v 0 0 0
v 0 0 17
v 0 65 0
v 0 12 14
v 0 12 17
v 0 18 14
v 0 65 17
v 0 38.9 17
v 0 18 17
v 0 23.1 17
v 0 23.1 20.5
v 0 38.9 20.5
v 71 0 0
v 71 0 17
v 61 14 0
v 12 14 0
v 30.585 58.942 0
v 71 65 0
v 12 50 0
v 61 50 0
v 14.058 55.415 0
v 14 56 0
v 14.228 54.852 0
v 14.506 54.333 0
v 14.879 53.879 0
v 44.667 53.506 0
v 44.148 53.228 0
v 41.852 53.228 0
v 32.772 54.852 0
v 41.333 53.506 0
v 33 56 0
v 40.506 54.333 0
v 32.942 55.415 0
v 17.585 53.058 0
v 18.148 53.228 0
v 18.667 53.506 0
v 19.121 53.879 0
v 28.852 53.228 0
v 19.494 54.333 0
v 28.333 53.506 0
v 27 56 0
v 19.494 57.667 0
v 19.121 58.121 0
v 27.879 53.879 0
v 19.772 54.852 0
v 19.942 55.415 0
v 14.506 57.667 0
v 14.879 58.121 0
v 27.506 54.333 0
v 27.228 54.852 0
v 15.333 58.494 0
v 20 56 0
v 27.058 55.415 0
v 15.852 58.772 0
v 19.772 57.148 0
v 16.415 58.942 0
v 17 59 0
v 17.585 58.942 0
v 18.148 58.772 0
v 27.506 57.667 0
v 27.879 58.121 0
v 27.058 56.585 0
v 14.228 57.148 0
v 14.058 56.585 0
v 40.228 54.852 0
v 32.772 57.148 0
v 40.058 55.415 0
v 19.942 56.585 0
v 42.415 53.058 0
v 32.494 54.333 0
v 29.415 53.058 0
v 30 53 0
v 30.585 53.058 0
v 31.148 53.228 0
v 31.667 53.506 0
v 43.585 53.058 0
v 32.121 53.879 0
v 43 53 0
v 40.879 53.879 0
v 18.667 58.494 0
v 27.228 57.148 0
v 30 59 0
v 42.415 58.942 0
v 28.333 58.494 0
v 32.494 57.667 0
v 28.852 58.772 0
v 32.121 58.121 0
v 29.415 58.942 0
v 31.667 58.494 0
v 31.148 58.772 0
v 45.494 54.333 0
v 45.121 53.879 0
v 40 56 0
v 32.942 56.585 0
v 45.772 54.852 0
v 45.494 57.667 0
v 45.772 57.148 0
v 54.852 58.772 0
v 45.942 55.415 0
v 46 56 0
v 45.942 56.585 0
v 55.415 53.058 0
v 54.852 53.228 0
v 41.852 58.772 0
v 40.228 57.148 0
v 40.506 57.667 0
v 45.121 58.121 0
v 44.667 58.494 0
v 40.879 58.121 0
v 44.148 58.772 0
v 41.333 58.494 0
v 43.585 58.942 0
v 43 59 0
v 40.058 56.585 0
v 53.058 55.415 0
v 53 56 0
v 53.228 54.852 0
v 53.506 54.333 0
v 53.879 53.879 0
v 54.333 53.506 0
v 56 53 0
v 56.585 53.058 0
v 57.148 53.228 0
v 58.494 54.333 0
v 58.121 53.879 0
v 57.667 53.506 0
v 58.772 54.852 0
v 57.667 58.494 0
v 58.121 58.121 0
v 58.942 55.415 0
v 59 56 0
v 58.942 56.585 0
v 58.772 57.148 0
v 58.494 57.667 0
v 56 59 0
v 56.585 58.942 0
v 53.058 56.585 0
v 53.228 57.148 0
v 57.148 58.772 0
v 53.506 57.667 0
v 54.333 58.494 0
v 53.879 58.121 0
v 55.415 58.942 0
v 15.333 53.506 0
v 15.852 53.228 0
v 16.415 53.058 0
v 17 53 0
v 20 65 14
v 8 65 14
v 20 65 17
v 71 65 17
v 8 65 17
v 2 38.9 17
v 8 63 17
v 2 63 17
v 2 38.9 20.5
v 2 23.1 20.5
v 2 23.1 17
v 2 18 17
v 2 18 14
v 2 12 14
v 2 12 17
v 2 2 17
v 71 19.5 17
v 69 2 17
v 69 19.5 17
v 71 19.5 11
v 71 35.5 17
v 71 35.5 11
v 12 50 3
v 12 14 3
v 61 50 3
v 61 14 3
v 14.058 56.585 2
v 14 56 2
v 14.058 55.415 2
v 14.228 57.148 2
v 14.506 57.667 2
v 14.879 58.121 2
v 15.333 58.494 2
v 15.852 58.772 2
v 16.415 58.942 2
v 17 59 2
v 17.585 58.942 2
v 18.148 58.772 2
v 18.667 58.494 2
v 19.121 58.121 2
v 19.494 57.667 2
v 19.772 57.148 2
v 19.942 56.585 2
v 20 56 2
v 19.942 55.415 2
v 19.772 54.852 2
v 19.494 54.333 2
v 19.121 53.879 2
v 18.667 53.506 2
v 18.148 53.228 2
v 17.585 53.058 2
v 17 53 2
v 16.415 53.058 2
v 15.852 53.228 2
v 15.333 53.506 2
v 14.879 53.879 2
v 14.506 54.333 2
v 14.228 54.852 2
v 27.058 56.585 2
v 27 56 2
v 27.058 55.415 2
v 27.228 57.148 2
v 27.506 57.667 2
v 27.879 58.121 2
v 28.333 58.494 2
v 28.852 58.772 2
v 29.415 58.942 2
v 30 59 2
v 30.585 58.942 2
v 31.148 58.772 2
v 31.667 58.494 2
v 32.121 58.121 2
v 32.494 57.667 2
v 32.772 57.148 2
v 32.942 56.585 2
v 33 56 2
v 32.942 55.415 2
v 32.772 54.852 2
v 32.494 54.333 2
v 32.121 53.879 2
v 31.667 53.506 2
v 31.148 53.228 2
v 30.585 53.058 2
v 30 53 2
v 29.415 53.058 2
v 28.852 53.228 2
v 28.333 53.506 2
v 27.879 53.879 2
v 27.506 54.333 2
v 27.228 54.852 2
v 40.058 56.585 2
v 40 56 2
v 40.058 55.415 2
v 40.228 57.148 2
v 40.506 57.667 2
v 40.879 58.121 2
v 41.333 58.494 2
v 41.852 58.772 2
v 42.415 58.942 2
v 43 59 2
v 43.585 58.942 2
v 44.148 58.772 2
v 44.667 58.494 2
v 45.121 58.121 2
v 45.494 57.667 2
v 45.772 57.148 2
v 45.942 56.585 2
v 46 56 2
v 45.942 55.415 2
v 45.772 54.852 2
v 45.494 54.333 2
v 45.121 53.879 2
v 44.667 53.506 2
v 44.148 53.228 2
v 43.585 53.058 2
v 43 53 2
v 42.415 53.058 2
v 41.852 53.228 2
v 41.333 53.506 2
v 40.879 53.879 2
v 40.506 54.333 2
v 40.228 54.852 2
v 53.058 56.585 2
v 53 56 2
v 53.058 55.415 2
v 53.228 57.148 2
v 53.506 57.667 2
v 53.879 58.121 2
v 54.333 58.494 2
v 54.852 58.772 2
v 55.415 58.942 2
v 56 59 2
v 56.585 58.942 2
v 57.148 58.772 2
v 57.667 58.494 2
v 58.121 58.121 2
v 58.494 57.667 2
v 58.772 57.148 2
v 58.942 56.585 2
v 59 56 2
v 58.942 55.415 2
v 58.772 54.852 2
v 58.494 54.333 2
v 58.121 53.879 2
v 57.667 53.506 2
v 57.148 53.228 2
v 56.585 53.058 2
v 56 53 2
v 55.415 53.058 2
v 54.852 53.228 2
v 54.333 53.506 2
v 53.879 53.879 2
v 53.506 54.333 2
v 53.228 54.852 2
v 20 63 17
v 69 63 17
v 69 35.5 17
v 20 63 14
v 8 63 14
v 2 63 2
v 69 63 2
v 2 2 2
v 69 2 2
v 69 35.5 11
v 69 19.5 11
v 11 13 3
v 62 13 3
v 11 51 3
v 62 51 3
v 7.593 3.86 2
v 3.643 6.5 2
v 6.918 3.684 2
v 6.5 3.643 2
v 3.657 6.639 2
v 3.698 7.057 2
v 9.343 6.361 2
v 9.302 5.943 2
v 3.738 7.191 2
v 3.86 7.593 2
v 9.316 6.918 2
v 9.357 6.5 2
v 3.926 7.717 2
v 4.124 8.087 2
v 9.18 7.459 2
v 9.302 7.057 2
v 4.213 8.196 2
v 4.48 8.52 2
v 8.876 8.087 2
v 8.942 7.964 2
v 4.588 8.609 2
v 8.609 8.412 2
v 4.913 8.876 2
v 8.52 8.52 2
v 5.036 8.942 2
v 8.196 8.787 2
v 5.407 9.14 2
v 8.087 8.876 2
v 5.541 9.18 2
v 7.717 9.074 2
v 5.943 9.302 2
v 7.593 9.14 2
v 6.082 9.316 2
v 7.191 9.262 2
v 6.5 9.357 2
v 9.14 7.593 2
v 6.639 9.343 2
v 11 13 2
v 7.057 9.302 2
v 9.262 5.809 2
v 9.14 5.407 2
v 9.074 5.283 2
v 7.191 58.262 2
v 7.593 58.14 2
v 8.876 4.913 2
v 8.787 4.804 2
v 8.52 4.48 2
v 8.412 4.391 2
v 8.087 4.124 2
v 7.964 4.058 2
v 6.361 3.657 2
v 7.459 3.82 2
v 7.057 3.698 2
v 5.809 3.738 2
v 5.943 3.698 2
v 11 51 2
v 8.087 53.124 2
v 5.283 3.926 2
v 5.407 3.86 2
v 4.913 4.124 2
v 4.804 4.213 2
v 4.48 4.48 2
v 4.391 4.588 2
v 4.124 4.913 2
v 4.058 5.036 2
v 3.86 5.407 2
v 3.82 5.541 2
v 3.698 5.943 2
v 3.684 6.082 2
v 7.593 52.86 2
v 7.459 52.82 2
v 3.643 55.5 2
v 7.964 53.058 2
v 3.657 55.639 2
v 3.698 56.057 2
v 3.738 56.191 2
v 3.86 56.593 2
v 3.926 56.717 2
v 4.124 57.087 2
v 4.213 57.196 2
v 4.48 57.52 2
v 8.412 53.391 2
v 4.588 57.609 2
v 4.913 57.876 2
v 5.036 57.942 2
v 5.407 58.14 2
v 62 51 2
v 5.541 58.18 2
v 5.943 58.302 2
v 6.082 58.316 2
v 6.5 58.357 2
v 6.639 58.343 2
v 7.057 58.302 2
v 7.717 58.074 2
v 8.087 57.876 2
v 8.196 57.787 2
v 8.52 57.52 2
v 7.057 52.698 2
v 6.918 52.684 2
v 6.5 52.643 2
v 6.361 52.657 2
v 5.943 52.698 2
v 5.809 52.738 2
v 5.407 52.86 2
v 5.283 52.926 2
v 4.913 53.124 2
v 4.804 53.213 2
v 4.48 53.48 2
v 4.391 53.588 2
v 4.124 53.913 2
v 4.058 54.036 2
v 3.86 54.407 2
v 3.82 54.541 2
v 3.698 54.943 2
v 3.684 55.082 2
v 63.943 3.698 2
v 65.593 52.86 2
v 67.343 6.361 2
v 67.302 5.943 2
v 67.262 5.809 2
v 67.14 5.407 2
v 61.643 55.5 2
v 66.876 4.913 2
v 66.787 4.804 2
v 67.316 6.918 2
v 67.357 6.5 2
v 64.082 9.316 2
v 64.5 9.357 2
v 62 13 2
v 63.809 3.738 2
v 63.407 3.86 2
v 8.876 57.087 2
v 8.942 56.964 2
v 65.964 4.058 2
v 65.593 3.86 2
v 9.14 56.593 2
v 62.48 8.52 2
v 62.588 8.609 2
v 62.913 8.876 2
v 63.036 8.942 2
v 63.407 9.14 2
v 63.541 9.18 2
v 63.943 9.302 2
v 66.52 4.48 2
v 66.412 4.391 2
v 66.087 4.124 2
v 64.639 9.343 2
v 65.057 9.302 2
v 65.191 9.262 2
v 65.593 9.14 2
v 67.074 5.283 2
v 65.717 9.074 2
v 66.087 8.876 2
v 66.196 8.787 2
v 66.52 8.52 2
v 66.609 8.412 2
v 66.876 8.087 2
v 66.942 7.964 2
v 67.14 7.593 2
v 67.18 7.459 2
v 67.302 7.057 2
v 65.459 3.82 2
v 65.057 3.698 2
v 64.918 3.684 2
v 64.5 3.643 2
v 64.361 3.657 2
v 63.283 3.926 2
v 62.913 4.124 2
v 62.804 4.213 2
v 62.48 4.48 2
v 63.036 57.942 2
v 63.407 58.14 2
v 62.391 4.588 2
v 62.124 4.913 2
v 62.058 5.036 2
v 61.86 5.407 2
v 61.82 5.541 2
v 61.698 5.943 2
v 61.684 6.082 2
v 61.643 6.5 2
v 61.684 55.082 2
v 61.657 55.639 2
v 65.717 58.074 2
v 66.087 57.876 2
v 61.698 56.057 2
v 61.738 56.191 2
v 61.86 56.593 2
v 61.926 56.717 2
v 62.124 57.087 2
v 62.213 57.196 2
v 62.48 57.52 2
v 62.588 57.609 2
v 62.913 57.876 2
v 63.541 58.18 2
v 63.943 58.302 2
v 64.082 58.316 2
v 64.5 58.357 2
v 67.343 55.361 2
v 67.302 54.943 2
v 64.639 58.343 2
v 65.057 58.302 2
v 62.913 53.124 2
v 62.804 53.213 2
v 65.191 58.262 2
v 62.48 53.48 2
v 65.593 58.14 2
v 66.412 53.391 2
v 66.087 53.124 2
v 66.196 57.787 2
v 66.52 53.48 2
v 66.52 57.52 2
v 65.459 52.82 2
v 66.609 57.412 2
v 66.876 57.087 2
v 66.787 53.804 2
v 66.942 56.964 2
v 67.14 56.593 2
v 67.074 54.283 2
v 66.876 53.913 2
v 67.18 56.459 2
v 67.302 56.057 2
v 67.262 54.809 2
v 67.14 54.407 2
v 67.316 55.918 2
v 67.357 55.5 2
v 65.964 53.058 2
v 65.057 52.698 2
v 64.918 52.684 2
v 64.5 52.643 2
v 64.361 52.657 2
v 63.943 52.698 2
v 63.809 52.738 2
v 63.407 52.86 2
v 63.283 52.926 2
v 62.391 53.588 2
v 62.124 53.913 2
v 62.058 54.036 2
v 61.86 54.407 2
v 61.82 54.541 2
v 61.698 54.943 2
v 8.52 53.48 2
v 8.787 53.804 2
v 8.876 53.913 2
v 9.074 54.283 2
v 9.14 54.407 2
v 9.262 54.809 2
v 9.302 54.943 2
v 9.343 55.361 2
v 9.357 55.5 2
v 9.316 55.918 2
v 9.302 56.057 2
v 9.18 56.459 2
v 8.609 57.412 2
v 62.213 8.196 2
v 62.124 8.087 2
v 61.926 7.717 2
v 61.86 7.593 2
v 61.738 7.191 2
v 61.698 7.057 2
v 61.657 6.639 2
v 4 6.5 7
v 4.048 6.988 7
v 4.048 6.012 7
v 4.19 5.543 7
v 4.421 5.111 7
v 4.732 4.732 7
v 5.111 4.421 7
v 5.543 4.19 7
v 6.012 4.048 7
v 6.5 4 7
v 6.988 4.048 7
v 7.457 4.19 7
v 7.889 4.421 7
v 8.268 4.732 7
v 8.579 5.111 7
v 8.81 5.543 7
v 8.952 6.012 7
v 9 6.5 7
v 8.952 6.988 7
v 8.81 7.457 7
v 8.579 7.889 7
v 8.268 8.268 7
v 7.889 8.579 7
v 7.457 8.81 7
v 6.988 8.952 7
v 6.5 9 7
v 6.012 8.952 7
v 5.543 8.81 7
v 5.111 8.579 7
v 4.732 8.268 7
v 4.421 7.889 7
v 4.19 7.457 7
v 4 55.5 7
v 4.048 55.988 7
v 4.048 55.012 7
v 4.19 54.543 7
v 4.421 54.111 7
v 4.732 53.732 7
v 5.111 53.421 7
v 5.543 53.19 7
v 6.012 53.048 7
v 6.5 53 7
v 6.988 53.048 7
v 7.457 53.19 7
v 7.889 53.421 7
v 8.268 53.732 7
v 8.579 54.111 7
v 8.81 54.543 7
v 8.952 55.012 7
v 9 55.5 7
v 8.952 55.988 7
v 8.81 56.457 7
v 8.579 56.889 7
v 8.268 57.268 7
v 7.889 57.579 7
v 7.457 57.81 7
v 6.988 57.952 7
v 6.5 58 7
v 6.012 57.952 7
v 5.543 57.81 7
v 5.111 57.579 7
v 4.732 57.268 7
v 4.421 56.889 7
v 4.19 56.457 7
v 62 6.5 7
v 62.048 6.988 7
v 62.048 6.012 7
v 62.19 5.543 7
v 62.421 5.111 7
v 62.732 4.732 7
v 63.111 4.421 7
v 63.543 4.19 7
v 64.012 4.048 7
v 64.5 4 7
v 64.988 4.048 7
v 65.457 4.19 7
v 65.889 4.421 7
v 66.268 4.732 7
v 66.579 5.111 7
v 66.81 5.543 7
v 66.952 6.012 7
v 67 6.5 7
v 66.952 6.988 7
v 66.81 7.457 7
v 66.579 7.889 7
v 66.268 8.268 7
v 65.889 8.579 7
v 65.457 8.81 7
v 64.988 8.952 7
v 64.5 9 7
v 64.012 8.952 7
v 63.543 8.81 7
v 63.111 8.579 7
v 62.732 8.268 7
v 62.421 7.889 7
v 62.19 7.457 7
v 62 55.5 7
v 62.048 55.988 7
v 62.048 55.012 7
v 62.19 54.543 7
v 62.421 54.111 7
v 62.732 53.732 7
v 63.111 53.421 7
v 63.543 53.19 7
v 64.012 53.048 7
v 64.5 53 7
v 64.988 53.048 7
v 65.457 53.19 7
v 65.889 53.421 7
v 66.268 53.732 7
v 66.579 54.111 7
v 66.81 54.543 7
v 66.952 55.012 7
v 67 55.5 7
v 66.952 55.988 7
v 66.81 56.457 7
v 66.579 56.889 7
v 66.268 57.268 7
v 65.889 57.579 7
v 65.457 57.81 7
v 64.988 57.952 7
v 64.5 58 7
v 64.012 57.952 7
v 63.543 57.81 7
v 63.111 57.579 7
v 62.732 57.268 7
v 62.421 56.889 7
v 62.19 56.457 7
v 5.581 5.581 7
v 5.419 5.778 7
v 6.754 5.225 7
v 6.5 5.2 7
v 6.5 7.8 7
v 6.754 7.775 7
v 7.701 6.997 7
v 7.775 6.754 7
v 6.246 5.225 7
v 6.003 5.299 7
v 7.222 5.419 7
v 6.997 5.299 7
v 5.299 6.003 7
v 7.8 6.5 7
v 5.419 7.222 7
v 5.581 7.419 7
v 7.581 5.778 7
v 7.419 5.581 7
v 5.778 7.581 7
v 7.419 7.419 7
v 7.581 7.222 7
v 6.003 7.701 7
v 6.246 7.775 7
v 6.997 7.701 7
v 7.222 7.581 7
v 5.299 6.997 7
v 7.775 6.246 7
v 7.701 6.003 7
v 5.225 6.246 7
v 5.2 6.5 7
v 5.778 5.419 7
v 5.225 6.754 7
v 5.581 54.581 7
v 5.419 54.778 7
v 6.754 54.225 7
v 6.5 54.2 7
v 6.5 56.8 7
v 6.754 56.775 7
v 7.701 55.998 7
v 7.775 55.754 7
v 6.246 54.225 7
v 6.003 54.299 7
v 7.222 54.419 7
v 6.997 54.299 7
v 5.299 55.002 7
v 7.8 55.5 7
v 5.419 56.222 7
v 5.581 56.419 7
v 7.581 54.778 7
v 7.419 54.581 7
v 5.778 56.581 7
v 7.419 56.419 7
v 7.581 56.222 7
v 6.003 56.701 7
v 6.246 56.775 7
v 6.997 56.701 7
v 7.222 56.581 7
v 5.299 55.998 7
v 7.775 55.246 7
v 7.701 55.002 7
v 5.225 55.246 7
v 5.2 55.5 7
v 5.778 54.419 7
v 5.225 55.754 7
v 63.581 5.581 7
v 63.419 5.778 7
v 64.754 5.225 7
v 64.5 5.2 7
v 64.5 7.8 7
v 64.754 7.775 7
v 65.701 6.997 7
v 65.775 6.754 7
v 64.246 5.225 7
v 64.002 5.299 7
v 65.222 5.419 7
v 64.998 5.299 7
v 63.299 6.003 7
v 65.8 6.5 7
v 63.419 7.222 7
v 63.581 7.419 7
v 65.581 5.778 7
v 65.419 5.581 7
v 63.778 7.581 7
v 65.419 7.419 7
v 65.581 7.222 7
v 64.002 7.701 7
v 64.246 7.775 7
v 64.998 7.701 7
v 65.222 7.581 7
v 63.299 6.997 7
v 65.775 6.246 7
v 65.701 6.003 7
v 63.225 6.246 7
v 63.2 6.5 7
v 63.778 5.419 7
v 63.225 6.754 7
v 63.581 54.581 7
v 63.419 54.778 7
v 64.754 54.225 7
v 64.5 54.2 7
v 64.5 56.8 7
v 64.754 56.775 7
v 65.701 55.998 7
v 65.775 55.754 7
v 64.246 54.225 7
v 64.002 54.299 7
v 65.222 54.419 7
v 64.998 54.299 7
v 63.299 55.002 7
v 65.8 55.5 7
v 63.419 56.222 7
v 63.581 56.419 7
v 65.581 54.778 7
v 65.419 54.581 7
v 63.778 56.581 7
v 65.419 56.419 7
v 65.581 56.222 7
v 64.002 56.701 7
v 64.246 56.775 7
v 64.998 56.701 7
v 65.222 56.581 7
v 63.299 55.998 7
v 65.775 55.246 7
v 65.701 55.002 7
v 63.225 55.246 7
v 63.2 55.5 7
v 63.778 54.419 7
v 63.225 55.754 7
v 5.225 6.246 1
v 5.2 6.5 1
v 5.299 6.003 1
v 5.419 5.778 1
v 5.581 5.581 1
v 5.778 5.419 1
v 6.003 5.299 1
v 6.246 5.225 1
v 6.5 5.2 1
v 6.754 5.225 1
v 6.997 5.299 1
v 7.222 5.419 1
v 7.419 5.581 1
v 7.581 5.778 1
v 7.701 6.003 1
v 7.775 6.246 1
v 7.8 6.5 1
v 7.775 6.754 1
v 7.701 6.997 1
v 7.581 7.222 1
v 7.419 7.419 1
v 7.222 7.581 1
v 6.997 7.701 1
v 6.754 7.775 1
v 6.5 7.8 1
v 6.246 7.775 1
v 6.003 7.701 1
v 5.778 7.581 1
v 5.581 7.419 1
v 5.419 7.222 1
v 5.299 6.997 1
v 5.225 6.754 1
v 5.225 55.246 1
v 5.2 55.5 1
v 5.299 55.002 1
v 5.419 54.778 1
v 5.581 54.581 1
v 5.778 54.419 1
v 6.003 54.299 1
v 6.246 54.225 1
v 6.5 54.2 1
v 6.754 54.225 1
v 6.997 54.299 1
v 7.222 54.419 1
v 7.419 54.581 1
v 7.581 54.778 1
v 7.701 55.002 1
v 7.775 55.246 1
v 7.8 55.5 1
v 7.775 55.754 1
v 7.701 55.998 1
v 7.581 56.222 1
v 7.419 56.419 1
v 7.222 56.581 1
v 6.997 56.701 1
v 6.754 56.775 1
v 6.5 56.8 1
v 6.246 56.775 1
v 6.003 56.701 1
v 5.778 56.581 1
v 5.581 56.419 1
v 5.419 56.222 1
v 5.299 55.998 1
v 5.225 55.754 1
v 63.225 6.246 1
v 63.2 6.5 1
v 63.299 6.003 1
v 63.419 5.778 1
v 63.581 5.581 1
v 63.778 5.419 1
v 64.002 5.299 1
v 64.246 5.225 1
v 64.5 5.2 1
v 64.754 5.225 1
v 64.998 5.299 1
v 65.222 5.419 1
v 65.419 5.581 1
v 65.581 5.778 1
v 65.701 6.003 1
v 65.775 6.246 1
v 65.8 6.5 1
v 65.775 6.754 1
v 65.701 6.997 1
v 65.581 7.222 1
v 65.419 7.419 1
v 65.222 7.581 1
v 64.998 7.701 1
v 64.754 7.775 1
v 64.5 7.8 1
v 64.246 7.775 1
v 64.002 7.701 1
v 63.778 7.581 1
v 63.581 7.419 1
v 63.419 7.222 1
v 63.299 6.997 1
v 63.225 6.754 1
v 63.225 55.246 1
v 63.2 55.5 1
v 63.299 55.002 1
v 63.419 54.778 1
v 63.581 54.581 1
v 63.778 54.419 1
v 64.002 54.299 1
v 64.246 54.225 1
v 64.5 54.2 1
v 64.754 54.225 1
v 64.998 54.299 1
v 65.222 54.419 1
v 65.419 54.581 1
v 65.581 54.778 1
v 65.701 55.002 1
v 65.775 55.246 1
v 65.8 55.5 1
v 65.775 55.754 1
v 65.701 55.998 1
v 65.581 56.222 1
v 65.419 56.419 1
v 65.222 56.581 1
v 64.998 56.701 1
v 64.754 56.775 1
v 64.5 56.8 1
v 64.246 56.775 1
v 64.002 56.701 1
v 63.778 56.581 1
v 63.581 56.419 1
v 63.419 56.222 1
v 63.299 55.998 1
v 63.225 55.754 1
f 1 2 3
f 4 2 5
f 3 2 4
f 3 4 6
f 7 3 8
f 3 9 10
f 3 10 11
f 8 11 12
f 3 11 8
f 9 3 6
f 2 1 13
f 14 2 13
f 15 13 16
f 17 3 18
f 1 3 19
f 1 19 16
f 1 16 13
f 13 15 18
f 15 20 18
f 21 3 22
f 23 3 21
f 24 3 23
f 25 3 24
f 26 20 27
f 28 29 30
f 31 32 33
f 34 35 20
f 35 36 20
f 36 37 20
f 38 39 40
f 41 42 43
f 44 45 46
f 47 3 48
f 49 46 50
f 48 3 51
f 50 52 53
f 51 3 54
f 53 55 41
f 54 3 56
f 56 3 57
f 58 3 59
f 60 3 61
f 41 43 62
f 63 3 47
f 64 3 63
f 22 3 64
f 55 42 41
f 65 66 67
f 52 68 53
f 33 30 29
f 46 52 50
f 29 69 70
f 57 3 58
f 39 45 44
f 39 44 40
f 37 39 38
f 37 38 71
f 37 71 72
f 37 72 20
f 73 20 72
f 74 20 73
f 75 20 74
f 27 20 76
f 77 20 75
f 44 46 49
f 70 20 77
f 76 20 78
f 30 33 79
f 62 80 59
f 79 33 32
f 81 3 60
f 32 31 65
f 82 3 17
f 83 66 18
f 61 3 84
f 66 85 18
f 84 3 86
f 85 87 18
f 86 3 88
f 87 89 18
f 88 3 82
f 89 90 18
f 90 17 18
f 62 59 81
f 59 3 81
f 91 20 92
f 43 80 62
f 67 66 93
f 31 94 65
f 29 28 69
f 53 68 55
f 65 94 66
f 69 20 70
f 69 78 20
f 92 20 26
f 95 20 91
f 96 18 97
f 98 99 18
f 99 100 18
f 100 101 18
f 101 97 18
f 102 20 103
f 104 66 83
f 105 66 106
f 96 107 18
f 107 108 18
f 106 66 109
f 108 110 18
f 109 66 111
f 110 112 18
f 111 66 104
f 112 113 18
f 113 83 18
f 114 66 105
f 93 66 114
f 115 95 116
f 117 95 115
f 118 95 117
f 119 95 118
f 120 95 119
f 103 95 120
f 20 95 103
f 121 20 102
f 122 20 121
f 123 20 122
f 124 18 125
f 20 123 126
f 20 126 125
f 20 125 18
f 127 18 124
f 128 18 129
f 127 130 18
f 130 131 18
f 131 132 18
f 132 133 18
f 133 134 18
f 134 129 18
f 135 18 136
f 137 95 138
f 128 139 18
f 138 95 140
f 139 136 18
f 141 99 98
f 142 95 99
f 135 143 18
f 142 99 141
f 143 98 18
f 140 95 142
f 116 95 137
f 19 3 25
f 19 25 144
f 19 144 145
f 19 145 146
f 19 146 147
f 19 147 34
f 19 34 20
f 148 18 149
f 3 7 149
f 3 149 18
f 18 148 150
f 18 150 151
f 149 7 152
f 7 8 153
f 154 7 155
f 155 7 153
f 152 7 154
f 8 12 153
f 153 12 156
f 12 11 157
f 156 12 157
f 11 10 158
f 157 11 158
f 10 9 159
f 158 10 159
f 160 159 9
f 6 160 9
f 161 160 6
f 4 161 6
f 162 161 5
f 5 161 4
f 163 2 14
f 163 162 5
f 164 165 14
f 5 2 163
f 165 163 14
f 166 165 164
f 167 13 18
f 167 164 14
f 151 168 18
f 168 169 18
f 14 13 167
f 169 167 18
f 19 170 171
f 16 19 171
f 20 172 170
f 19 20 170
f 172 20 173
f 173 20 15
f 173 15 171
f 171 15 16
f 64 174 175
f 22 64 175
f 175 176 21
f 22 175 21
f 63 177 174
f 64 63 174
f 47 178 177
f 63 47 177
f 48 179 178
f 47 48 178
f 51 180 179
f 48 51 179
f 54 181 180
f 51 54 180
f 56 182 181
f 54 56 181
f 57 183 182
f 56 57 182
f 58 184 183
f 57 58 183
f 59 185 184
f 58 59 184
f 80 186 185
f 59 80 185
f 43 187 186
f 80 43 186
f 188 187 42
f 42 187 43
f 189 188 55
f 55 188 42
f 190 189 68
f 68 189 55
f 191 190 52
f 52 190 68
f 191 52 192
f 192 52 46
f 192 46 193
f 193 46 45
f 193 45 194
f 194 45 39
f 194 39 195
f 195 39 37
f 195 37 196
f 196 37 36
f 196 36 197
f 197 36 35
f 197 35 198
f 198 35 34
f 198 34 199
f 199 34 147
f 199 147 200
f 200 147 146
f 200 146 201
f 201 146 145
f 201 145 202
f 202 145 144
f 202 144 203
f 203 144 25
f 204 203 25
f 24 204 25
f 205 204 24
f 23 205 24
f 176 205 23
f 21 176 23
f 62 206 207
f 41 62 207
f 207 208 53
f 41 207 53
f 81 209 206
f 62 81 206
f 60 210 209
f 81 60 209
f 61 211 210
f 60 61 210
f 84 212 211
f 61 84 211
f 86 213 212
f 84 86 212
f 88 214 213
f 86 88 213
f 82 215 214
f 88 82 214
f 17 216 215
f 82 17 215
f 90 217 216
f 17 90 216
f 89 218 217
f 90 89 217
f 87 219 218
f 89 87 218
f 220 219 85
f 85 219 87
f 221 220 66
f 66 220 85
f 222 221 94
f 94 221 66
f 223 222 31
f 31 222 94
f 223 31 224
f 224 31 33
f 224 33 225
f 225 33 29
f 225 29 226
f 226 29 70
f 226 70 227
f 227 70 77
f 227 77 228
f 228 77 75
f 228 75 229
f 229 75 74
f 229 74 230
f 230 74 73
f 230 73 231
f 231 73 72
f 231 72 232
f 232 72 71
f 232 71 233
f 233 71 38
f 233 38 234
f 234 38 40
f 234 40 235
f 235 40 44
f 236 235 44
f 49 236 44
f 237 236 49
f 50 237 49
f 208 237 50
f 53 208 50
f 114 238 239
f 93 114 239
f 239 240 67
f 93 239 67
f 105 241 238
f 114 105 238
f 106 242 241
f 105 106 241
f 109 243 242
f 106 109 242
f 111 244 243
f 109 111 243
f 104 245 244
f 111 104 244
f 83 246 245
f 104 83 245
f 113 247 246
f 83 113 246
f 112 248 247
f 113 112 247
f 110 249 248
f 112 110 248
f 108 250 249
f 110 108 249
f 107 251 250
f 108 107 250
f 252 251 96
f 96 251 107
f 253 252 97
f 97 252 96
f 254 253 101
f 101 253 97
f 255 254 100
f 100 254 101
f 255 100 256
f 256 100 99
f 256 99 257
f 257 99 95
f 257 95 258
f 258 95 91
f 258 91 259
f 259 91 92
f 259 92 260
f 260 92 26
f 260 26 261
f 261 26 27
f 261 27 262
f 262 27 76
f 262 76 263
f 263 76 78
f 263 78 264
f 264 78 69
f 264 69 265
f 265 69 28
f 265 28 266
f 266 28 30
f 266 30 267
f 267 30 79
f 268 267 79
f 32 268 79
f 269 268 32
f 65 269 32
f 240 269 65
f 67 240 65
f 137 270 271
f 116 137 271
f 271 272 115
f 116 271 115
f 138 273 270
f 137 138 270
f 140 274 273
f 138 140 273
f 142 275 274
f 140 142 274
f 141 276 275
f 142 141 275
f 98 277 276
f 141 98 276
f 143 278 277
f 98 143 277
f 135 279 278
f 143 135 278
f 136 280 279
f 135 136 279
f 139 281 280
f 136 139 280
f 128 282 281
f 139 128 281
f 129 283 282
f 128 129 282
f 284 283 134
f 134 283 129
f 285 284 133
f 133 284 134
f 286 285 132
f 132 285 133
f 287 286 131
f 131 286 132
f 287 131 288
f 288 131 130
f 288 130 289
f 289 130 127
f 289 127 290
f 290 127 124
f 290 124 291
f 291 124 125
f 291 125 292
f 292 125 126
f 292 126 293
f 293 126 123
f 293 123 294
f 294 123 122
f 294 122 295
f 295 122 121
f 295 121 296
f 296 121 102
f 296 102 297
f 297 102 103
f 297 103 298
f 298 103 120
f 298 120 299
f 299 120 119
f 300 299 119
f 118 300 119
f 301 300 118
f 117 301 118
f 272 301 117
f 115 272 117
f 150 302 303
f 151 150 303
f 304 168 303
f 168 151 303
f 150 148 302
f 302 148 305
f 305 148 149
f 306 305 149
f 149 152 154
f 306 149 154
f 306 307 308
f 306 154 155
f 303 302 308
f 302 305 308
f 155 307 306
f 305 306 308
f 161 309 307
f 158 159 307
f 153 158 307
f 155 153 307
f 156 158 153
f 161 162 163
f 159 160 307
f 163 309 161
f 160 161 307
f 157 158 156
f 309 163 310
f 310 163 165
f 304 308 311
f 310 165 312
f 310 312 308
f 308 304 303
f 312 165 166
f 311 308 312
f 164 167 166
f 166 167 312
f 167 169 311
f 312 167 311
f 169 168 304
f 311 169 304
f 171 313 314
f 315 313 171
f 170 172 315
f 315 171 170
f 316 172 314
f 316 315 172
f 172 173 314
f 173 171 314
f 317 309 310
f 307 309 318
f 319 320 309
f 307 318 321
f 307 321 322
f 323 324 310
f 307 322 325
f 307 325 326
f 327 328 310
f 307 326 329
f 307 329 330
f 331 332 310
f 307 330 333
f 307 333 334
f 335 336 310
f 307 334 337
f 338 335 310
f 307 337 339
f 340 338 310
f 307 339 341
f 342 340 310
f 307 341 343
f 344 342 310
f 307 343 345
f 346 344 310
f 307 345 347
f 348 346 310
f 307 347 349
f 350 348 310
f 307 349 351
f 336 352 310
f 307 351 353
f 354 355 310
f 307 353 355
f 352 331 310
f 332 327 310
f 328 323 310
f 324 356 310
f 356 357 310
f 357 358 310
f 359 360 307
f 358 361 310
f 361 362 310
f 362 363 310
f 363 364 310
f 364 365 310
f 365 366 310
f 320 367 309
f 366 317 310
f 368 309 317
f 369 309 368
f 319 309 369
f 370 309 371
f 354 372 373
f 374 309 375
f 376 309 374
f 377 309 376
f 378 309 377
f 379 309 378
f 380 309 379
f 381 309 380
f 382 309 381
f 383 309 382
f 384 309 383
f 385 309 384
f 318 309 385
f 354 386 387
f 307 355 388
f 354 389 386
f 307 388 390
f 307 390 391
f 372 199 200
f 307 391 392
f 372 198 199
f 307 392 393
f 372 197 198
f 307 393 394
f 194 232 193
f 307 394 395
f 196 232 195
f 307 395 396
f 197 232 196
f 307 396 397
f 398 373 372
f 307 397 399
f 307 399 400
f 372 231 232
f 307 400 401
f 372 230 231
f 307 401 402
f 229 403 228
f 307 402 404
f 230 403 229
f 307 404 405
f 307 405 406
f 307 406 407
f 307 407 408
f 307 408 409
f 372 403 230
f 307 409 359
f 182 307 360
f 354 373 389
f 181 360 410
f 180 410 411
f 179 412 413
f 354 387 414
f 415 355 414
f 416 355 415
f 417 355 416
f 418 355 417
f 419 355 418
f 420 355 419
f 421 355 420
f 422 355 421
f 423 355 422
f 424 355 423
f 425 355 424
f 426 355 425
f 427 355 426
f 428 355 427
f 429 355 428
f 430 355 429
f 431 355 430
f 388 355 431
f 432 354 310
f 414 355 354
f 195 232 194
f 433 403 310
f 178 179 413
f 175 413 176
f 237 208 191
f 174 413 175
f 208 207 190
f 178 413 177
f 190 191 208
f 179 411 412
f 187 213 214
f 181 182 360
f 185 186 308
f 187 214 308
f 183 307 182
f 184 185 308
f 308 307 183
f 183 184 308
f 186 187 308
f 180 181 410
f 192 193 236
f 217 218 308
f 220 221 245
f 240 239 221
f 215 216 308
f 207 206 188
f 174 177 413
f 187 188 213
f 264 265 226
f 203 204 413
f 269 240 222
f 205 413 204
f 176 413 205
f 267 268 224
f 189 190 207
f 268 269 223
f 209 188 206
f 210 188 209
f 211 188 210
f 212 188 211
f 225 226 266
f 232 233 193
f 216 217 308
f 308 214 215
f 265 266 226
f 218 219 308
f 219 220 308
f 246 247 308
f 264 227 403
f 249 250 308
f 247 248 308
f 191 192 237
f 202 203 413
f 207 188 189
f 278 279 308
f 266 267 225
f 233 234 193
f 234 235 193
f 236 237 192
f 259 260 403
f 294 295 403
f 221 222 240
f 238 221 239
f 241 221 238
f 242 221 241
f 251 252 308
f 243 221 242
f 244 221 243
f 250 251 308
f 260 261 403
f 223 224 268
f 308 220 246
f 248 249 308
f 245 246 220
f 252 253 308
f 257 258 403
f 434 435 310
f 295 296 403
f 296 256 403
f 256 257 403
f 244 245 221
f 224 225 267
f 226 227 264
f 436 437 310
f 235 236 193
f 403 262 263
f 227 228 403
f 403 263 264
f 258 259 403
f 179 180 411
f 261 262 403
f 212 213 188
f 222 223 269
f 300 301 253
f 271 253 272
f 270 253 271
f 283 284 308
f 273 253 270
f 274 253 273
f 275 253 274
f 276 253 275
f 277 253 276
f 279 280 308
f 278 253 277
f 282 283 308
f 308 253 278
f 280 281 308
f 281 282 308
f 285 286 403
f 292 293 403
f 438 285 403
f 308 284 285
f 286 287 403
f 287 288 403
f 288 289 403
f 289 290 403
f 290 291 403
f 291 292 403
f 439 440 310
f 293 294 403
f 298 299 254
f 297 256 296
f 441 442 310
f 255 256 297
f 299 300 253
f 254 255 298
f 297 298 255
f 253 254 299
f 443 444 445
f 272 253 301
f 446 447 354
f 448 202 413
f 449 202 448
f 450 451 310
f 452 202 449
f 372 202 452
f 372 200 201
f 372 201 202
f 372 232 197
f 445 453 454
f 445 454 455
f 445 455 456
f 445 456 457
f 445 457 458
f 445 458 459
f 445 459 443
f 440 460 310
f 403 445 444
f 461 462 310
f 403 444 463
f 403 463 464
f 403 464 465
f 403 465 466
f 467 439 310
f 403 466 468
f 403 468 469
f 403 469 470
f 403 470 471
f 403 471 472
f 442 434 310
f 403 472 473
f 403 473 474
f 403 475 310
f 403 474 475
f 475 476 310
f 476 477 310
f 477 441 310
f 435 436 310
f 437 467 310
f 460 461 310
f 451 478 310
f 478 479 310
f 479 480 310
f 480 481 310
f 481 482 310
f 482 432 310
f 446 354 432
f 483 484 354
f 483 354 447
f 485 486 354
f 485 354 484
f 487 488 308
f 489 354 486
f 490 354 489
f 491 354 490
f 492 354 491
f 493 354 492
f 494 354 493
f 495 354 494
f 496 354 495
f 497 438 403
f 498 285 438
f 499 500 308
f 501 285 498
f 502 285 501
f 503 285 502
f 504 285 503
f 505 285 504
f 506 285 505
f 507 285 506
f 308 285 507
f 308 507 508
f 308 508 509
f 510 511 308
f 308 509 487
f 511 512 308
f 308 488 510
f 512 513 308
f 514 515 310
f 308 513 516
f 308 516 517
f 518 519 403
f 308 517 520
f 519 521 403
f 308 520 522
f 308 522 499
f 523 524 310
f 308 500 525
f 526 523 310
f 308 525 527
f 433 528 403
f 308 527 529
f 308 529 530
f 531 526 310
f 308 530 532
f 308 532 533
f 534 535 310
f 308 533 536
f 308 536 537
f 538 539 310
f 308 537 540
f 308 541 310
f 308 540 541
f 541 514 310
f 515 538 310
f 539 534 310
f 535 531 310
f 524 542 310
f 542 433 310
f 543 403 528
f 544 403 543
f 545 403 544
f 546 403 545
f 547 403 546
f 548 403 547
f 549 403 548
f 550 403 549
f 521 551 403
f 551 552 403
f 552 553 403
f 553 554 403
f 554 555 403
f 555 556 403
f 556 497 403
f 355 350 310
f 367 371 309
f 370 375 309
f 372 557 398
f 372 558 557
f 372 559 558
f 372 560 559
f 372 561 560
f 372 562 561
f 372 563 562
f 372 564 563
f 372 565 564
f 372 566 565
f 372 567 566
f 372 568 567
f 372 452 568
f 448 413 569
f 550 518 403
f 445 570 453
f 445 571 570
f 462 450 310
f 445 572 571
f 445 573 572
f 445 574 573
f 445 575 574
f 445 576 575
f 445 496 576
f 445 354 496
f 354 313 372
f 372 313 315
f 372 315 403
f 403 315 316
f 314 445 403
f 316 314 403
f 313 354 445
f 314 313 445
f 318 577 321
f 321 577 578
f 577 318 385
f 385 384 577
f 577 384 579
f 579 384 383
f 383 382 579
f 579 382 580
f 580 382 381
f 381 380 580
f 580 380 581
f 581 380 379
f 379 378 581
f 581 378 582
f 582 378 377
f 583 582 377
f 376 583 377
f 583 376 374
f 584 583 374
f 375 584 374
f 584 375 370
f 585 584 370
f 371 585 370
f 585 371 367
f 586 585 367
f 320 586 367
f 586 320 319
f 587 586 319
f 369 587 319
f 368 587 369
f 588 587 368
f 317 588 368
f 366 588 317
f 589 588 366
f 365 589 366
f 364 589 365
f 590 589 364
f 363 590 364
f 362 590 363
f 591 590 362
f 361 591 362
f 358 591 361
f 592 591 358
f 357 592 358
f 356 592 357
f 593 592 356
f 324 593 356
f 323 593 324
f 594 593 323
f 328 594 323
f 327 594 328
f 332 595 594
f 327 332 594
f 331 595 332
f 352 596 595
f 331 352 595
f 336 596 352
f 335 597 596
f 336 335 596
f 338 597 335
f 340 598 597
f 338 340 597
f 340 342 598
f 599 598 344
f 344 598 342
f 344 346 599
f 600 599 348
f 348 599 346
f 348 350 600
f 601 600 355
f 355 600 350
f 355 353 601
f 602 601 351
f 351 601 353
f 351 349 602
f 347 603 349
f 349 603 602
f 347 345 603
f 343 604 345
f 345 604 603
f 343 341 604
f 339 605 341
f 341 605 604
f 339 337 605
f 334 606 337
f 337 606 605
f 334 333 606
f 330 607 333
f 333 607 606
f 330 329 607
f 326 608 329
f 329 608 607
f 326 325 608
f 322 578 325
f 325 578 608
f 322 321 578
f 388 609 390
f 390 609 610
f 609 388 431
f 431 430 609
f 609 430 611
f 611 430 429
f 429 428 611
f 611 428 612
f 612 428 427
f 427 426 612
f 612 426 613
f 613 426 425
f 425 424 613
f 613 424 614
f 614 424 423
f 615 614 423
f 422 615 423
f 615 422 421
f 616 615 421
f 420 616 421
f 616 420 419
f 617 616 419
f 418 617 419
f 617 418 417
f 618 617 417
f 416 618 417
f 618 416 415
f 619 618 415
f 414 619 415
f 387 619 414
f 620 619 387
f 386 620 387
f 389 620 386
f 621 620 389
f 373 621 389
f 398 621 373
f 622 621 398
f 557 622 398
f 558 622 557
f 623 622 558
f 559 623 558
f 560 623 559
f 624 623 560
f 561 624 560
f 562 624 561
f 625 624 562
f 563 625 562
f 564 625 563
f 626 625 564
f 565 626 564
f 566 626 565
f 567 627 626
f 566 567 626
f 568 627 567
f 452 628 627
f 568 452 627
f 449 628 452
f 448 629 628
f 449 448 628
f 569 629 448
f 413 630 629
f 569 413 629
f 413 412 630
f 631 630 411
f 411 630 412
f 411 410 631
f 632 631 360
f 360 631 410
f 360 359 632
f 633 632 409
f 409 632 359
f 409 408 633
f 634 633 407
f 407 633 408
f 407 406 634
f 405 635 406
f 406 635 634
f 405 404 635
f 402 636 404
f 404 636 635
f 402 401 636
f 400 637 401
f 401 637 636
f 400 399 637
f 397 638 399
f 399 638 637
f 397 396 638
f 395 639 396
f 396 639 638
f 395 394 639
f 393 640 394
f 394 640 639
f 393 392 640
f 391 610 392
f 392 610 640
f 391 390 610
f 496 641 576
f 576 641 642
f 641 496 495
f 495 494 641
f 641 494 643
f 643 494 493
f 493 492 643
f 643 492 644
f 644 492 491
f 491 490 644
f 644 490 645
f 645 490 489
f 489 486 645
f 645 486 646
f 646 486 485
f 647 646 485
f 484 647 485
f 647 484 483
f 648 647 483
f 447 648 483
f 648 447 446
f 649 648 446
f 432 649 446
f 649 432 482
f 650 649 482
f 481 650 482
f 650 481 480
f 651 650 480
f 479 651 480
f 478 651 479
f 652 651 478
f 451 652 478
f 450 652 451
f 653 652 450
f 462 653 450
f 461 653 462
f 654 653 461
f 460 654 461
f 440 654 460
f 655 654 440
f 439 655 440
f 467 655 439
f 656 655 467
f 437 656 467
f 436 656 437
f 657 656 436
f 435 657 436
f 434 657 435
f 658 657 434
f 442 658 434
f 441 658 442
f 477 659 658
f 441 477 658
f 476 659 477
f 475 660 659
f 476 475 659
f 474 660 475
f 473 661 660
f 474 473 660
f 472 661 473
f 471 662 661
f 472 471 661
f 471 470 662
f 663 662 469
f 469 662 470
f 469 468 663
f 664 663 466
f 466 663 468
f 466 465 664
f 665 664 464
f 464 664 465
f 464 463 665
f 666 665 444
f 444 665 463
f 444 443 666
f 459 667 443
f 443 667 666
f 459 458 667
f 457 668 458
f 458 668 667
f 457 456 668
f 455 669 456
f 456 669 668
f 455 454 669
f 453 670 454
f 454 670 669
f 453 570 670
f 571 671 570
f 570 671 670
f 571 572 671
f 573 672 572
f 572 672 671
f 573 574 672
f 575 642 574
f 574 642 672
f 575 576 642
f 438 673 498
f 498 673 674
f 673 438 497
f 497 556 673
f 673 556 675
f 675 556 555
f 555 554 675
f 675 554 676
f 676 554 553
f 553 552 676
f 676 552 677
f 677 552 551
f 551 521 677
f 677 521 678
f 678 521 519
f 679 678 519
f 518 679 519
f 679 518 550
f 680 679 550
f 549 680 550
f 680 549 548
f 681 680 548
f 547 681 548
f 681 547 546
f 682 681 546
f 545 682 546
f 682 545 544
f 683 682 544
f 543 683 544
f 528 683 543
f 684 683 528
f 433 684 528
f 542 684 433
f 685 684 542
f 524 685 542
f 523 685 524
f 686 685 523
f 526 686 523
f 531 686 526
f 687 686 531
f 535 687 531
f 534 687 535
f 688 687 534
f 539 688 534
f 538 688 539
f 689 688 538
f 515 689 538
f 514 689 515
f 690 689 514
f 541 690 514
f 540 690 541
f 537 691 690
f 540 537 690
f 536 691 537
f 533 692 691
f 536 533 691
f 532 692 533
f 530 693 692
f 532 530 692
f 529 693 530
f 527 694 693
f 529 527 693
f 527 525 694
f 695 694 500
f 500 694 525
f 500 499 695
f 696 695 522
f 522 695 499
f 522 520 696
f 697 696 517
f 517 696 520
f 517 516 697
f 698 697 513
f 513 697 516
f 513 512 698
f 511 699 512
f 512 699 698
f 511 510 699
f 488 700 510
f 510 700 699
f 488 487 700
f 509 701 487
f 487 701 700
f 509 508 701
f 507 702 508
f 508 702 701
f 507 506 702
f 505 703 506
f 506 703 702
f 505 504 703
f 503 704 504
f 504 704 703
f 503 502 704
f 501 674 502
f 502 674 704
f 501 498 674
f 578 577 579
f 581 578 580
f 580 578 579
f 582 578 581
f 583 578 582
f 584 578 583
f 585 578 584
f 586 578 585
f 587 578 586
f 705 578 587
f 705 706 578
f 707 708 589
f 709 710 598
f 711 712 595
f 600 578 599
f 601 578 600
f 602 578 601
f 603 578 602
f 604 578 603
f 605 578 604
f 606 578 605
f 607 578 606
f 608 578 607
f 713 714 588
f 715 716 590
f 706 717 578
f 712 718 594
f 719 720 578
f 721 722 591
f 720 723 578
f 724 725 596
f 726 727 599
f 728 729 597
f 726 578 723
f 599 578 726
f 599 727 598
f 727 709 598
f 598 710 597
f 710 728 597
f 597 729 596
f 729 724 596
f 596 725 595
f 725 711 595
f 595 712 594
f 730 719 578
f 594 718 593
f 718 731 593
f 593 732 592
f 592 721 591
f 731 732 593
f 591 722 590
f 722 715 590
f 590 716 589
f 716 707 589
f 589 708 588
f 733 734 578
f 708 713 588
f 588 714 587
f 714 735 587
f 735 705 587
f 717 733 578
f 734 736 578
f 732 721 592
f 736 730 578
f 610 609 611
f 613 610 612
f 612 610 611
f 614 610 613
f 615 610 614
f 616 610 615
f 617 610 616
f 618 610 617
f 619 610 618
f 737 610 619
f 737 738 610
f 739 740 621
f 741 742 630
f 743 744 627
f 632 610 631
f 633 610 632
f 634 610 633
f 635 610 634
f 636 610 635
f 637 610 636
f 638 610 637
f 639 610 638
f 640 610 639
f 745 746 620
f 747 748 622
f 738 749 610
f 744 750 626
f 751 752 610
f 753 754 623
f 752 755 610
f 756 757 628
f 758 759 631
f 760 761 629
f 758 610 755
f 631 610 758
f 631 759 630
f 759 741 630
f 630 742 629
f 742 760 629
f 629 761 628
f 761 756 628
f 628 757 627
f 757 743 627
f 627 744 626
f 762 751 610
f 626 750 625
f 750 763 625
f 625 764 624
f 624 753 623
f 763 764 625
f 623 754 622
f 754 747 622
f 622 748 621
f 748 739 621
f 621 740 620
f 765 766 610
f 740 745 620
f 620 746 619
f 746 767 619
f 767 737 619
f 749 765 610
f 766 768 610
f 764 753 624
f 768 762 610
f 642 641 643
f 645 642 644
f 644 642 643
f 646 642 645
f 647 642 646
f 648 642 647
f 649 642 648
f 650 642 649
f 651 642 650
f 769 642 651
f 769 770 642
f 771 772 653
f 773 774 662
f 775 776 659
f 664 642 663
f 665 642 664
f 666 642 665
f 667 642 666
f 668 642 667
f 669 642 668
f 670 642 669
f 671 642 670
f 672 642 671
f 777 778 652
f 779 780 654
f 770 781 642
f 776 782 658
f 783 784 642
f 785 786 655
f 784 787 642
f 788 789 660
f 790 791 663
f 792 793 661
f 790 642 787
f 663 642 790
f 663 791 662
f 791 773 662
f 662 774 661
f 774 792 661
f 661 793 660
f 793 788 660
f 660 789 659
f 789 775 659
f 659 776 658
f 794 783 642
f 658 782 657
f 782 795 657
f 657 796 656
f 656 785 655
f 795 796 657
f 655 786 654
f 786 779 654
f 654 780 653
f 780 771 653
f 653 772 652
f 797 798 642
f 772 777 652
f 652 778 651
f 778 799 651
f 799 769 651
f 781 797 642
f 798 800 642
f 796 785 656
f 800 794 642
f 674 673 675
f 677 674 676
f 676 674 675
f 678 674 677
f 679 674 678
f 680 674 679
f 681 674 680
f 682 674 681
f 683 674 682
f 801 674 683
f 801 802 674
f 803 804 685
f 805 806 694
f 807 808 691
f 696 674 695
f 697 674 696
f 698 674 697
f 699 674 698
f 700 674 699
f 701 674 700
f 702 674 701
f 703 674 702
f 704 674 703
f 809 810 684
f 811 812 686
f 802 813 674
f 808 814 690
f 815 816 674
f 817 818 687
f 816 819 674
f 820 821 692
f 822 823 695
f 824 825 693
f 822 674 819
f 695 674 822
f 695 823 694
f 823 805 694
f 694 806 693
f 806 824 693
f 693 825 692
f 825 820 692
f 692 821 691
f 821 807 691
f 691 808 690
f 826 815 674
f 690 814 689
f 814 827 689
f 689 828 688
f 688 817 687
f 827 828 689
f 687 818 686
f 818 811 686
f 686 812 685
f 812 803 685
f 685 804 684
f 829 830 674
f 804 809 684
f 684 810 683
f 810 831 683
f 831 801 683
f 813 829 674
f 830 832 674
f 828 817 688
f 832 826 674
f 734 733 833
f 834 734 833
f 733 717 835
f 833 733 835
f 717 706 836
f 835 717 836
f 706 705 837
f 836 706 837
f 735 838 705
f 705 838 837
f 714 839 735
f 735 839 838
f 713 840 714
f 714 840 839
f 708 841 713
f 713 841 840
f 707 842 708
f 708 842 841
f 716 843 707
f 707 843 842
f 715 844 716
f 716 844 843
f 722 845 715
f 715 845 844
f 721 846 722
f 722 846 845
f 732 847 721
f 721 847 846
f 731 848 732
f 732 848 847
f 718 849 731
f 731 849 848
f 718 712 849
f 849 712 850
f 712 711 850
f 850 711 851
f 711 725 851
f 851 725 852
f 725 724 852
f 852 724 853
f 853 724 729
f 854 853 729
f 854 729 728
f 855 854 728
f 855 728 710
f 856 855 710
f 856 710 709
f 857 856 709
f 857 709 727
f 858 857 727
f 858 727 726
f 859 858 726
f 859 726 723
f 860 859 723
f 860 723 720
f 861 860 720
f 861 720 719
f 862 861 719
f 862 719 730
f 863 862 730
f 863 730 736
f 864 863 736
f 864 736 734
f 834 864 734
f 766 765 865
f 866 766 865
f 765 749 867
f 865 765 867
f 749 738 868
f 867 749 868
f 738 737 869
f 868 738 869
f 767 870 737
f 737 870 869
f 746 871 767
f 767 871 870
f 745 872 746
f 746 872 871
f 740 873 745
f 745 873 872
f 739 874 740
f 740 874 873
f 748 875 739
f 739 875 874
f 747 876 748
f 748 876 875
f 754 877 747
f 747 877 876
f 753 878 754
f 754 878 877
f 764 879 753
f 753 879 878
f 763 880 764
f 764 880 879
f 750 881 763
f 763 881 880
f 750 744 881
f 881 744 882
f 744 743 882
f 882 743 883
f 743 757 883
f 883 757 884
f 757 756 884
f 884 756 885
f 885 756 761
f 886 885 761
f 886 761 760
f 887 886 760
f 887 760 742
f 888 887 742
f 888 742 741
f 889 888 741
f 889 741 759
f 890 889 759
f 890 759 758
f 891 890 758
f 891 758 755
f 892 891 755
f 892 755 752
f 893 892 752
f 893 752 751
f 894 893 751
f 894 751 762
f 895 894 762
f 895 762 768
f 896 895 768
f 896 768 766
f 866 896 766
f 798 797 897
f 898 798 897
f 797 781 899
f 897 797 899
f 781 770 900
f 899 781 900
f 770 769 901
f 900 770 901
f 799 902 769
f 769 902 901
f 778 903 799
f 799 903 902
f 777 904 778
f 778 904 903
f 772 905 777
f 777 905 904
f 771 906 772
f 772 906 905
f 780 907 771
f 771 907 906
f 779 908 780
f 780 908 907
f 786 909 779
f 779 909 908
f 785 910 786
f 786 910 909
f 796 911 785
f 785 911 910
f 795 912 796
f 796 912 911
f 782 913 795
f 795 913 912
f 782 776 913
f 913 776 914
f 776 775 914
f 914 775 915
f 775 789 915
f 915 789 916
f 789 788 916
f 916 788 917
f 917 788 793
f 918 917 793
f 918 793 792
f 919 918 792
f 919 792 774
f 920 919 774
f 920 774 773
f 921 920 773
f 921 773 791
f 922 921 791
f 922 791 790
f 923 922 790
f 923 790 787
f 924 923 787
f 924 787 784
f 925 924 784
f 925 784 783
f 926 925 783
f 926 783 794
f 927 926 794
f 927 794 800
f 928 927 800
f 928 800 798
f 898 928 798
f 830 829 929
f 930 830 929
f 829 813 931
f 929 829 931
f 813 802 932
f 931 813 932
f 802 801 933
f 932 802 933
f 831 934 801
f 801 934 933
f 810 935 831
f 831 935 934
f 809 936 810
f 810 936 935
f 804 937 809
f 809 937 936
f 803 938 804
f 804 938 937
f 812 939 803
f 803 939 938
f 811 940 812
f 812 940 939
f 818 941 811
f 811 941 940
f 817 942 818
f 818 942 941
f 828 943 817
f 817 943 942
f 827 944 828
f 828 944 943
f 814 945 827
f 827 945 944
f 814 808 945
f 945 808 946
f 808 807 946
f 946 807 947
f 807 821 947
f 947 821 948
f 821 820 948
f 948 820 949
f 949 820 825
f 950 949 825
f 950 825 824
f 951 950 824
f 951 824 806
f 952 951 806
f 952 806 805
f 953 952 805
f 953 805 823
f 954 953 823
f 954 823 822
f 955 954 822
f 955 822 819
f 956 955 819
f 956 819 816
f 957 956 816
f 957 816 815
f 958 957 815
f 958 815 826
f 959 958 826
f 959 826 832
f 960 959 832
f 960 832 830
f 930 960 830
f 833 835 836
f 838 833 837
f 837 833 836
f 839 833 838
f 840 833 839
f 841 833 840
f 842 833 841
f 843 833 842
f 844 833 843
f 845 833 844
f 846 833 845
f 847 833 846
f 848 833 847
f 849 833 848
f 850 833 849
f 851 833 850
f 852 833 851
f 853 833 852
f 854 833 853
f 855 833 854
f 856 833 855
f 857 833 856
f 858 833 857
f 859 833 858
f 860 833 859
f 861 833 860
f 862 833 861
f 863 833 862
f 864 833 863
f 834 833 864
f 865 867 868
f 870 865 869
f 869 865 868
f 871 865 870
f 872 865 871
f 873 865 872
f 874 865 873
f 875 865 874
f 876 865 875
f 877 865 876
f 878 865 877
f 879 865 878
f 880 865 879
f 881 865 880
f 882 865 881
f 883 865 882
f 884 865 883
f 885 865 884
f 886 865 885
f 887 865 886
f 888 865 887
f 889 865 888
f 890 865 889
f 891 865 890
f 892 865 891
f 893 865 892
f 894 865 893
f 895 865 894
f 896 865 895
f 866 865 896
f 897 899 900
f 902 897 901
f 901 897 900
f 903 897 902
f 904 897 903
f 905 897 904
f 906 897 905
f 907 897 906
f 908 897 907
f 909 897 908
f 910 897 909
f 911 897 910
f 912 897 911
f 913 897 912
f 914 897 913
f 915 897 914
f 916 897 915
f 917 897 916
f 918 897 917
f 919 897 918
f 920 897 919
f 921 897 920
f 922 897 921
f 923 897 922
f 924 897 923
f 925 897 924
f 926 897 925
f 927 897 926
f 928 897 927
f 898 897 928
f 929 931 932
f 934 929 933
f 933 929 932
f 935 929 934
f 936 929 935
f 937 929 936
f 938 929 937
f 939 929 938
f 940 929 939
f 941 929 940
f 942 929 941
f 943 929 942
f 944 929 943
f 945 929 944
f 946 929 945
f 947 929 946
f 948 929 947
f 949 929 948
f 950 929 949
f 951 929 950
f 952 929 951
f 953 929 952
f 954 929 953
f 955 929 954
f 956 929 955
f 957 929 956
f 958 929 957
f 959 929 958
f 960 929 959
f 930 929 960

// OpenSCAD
height=17;

$fn=32;

module post(){
  difference() {
    cylinder(7,3,2.5);
    translate([0,0,1]) cylinder(7,1.3,1.3);
  }
}

difference(){
  union(){
    cube([71,65,2]);
    cube([71,2,height]);
    cube([2,65,height]);
    translate([0,65-2,0]) cube([71,2,height]);
    translate([71-2,0,0]) cube([2,65,height]);
    translate([0,23.1,height-1]) cube([2,15.8,4.5]); // Micro SD
    translate([11,13,1]) cube([51,38,2]); // LCD
  }
  //translate([21,9,0.5]) rotate([180,0,0]) scale(0.013) import("piTimeLapse.stl");
 
  translate([68,19.5,height-6]) cube([4,16,10]); // USB
  translate([8,65-3,height-3]) cube([12,8,5.5]); // Power

  translate([12,14,-1]) cube([49,36,5]); // LCD
  translate([-0.5,12,height-3]) cube([4,6,4]); // Camera Jack

  translate([17,56,-1]) cylinder(4,3,3);
  translate([17+13,56,-1]) cylinder(4,3,3);
  translate([17+2*13,56,-1]) cylinder(4,3,3);
  translate([17+3*13,56,-1]) cylinder(4,3,3);

  translate([6.5,6.5,1]) cylinder(2,1.3,1.3);
  translate([6.5,65-6.5-3,1]) cylinder(2,1.3,1.3);
  translate([71-6.5,6.5,1]) cylinder(2,1.3,1.3);
  translate([71-6.5,65-6.5-3,1]) cylinder(2,1.3,1.3);

}

translate([6.5,6.5,0]) post();
translate([6.5,65-6.5-3,0]) post();
translate([71-6.5,6.5,0]) post();
translate([71-6.5,65-6.5-3,0]) post();
